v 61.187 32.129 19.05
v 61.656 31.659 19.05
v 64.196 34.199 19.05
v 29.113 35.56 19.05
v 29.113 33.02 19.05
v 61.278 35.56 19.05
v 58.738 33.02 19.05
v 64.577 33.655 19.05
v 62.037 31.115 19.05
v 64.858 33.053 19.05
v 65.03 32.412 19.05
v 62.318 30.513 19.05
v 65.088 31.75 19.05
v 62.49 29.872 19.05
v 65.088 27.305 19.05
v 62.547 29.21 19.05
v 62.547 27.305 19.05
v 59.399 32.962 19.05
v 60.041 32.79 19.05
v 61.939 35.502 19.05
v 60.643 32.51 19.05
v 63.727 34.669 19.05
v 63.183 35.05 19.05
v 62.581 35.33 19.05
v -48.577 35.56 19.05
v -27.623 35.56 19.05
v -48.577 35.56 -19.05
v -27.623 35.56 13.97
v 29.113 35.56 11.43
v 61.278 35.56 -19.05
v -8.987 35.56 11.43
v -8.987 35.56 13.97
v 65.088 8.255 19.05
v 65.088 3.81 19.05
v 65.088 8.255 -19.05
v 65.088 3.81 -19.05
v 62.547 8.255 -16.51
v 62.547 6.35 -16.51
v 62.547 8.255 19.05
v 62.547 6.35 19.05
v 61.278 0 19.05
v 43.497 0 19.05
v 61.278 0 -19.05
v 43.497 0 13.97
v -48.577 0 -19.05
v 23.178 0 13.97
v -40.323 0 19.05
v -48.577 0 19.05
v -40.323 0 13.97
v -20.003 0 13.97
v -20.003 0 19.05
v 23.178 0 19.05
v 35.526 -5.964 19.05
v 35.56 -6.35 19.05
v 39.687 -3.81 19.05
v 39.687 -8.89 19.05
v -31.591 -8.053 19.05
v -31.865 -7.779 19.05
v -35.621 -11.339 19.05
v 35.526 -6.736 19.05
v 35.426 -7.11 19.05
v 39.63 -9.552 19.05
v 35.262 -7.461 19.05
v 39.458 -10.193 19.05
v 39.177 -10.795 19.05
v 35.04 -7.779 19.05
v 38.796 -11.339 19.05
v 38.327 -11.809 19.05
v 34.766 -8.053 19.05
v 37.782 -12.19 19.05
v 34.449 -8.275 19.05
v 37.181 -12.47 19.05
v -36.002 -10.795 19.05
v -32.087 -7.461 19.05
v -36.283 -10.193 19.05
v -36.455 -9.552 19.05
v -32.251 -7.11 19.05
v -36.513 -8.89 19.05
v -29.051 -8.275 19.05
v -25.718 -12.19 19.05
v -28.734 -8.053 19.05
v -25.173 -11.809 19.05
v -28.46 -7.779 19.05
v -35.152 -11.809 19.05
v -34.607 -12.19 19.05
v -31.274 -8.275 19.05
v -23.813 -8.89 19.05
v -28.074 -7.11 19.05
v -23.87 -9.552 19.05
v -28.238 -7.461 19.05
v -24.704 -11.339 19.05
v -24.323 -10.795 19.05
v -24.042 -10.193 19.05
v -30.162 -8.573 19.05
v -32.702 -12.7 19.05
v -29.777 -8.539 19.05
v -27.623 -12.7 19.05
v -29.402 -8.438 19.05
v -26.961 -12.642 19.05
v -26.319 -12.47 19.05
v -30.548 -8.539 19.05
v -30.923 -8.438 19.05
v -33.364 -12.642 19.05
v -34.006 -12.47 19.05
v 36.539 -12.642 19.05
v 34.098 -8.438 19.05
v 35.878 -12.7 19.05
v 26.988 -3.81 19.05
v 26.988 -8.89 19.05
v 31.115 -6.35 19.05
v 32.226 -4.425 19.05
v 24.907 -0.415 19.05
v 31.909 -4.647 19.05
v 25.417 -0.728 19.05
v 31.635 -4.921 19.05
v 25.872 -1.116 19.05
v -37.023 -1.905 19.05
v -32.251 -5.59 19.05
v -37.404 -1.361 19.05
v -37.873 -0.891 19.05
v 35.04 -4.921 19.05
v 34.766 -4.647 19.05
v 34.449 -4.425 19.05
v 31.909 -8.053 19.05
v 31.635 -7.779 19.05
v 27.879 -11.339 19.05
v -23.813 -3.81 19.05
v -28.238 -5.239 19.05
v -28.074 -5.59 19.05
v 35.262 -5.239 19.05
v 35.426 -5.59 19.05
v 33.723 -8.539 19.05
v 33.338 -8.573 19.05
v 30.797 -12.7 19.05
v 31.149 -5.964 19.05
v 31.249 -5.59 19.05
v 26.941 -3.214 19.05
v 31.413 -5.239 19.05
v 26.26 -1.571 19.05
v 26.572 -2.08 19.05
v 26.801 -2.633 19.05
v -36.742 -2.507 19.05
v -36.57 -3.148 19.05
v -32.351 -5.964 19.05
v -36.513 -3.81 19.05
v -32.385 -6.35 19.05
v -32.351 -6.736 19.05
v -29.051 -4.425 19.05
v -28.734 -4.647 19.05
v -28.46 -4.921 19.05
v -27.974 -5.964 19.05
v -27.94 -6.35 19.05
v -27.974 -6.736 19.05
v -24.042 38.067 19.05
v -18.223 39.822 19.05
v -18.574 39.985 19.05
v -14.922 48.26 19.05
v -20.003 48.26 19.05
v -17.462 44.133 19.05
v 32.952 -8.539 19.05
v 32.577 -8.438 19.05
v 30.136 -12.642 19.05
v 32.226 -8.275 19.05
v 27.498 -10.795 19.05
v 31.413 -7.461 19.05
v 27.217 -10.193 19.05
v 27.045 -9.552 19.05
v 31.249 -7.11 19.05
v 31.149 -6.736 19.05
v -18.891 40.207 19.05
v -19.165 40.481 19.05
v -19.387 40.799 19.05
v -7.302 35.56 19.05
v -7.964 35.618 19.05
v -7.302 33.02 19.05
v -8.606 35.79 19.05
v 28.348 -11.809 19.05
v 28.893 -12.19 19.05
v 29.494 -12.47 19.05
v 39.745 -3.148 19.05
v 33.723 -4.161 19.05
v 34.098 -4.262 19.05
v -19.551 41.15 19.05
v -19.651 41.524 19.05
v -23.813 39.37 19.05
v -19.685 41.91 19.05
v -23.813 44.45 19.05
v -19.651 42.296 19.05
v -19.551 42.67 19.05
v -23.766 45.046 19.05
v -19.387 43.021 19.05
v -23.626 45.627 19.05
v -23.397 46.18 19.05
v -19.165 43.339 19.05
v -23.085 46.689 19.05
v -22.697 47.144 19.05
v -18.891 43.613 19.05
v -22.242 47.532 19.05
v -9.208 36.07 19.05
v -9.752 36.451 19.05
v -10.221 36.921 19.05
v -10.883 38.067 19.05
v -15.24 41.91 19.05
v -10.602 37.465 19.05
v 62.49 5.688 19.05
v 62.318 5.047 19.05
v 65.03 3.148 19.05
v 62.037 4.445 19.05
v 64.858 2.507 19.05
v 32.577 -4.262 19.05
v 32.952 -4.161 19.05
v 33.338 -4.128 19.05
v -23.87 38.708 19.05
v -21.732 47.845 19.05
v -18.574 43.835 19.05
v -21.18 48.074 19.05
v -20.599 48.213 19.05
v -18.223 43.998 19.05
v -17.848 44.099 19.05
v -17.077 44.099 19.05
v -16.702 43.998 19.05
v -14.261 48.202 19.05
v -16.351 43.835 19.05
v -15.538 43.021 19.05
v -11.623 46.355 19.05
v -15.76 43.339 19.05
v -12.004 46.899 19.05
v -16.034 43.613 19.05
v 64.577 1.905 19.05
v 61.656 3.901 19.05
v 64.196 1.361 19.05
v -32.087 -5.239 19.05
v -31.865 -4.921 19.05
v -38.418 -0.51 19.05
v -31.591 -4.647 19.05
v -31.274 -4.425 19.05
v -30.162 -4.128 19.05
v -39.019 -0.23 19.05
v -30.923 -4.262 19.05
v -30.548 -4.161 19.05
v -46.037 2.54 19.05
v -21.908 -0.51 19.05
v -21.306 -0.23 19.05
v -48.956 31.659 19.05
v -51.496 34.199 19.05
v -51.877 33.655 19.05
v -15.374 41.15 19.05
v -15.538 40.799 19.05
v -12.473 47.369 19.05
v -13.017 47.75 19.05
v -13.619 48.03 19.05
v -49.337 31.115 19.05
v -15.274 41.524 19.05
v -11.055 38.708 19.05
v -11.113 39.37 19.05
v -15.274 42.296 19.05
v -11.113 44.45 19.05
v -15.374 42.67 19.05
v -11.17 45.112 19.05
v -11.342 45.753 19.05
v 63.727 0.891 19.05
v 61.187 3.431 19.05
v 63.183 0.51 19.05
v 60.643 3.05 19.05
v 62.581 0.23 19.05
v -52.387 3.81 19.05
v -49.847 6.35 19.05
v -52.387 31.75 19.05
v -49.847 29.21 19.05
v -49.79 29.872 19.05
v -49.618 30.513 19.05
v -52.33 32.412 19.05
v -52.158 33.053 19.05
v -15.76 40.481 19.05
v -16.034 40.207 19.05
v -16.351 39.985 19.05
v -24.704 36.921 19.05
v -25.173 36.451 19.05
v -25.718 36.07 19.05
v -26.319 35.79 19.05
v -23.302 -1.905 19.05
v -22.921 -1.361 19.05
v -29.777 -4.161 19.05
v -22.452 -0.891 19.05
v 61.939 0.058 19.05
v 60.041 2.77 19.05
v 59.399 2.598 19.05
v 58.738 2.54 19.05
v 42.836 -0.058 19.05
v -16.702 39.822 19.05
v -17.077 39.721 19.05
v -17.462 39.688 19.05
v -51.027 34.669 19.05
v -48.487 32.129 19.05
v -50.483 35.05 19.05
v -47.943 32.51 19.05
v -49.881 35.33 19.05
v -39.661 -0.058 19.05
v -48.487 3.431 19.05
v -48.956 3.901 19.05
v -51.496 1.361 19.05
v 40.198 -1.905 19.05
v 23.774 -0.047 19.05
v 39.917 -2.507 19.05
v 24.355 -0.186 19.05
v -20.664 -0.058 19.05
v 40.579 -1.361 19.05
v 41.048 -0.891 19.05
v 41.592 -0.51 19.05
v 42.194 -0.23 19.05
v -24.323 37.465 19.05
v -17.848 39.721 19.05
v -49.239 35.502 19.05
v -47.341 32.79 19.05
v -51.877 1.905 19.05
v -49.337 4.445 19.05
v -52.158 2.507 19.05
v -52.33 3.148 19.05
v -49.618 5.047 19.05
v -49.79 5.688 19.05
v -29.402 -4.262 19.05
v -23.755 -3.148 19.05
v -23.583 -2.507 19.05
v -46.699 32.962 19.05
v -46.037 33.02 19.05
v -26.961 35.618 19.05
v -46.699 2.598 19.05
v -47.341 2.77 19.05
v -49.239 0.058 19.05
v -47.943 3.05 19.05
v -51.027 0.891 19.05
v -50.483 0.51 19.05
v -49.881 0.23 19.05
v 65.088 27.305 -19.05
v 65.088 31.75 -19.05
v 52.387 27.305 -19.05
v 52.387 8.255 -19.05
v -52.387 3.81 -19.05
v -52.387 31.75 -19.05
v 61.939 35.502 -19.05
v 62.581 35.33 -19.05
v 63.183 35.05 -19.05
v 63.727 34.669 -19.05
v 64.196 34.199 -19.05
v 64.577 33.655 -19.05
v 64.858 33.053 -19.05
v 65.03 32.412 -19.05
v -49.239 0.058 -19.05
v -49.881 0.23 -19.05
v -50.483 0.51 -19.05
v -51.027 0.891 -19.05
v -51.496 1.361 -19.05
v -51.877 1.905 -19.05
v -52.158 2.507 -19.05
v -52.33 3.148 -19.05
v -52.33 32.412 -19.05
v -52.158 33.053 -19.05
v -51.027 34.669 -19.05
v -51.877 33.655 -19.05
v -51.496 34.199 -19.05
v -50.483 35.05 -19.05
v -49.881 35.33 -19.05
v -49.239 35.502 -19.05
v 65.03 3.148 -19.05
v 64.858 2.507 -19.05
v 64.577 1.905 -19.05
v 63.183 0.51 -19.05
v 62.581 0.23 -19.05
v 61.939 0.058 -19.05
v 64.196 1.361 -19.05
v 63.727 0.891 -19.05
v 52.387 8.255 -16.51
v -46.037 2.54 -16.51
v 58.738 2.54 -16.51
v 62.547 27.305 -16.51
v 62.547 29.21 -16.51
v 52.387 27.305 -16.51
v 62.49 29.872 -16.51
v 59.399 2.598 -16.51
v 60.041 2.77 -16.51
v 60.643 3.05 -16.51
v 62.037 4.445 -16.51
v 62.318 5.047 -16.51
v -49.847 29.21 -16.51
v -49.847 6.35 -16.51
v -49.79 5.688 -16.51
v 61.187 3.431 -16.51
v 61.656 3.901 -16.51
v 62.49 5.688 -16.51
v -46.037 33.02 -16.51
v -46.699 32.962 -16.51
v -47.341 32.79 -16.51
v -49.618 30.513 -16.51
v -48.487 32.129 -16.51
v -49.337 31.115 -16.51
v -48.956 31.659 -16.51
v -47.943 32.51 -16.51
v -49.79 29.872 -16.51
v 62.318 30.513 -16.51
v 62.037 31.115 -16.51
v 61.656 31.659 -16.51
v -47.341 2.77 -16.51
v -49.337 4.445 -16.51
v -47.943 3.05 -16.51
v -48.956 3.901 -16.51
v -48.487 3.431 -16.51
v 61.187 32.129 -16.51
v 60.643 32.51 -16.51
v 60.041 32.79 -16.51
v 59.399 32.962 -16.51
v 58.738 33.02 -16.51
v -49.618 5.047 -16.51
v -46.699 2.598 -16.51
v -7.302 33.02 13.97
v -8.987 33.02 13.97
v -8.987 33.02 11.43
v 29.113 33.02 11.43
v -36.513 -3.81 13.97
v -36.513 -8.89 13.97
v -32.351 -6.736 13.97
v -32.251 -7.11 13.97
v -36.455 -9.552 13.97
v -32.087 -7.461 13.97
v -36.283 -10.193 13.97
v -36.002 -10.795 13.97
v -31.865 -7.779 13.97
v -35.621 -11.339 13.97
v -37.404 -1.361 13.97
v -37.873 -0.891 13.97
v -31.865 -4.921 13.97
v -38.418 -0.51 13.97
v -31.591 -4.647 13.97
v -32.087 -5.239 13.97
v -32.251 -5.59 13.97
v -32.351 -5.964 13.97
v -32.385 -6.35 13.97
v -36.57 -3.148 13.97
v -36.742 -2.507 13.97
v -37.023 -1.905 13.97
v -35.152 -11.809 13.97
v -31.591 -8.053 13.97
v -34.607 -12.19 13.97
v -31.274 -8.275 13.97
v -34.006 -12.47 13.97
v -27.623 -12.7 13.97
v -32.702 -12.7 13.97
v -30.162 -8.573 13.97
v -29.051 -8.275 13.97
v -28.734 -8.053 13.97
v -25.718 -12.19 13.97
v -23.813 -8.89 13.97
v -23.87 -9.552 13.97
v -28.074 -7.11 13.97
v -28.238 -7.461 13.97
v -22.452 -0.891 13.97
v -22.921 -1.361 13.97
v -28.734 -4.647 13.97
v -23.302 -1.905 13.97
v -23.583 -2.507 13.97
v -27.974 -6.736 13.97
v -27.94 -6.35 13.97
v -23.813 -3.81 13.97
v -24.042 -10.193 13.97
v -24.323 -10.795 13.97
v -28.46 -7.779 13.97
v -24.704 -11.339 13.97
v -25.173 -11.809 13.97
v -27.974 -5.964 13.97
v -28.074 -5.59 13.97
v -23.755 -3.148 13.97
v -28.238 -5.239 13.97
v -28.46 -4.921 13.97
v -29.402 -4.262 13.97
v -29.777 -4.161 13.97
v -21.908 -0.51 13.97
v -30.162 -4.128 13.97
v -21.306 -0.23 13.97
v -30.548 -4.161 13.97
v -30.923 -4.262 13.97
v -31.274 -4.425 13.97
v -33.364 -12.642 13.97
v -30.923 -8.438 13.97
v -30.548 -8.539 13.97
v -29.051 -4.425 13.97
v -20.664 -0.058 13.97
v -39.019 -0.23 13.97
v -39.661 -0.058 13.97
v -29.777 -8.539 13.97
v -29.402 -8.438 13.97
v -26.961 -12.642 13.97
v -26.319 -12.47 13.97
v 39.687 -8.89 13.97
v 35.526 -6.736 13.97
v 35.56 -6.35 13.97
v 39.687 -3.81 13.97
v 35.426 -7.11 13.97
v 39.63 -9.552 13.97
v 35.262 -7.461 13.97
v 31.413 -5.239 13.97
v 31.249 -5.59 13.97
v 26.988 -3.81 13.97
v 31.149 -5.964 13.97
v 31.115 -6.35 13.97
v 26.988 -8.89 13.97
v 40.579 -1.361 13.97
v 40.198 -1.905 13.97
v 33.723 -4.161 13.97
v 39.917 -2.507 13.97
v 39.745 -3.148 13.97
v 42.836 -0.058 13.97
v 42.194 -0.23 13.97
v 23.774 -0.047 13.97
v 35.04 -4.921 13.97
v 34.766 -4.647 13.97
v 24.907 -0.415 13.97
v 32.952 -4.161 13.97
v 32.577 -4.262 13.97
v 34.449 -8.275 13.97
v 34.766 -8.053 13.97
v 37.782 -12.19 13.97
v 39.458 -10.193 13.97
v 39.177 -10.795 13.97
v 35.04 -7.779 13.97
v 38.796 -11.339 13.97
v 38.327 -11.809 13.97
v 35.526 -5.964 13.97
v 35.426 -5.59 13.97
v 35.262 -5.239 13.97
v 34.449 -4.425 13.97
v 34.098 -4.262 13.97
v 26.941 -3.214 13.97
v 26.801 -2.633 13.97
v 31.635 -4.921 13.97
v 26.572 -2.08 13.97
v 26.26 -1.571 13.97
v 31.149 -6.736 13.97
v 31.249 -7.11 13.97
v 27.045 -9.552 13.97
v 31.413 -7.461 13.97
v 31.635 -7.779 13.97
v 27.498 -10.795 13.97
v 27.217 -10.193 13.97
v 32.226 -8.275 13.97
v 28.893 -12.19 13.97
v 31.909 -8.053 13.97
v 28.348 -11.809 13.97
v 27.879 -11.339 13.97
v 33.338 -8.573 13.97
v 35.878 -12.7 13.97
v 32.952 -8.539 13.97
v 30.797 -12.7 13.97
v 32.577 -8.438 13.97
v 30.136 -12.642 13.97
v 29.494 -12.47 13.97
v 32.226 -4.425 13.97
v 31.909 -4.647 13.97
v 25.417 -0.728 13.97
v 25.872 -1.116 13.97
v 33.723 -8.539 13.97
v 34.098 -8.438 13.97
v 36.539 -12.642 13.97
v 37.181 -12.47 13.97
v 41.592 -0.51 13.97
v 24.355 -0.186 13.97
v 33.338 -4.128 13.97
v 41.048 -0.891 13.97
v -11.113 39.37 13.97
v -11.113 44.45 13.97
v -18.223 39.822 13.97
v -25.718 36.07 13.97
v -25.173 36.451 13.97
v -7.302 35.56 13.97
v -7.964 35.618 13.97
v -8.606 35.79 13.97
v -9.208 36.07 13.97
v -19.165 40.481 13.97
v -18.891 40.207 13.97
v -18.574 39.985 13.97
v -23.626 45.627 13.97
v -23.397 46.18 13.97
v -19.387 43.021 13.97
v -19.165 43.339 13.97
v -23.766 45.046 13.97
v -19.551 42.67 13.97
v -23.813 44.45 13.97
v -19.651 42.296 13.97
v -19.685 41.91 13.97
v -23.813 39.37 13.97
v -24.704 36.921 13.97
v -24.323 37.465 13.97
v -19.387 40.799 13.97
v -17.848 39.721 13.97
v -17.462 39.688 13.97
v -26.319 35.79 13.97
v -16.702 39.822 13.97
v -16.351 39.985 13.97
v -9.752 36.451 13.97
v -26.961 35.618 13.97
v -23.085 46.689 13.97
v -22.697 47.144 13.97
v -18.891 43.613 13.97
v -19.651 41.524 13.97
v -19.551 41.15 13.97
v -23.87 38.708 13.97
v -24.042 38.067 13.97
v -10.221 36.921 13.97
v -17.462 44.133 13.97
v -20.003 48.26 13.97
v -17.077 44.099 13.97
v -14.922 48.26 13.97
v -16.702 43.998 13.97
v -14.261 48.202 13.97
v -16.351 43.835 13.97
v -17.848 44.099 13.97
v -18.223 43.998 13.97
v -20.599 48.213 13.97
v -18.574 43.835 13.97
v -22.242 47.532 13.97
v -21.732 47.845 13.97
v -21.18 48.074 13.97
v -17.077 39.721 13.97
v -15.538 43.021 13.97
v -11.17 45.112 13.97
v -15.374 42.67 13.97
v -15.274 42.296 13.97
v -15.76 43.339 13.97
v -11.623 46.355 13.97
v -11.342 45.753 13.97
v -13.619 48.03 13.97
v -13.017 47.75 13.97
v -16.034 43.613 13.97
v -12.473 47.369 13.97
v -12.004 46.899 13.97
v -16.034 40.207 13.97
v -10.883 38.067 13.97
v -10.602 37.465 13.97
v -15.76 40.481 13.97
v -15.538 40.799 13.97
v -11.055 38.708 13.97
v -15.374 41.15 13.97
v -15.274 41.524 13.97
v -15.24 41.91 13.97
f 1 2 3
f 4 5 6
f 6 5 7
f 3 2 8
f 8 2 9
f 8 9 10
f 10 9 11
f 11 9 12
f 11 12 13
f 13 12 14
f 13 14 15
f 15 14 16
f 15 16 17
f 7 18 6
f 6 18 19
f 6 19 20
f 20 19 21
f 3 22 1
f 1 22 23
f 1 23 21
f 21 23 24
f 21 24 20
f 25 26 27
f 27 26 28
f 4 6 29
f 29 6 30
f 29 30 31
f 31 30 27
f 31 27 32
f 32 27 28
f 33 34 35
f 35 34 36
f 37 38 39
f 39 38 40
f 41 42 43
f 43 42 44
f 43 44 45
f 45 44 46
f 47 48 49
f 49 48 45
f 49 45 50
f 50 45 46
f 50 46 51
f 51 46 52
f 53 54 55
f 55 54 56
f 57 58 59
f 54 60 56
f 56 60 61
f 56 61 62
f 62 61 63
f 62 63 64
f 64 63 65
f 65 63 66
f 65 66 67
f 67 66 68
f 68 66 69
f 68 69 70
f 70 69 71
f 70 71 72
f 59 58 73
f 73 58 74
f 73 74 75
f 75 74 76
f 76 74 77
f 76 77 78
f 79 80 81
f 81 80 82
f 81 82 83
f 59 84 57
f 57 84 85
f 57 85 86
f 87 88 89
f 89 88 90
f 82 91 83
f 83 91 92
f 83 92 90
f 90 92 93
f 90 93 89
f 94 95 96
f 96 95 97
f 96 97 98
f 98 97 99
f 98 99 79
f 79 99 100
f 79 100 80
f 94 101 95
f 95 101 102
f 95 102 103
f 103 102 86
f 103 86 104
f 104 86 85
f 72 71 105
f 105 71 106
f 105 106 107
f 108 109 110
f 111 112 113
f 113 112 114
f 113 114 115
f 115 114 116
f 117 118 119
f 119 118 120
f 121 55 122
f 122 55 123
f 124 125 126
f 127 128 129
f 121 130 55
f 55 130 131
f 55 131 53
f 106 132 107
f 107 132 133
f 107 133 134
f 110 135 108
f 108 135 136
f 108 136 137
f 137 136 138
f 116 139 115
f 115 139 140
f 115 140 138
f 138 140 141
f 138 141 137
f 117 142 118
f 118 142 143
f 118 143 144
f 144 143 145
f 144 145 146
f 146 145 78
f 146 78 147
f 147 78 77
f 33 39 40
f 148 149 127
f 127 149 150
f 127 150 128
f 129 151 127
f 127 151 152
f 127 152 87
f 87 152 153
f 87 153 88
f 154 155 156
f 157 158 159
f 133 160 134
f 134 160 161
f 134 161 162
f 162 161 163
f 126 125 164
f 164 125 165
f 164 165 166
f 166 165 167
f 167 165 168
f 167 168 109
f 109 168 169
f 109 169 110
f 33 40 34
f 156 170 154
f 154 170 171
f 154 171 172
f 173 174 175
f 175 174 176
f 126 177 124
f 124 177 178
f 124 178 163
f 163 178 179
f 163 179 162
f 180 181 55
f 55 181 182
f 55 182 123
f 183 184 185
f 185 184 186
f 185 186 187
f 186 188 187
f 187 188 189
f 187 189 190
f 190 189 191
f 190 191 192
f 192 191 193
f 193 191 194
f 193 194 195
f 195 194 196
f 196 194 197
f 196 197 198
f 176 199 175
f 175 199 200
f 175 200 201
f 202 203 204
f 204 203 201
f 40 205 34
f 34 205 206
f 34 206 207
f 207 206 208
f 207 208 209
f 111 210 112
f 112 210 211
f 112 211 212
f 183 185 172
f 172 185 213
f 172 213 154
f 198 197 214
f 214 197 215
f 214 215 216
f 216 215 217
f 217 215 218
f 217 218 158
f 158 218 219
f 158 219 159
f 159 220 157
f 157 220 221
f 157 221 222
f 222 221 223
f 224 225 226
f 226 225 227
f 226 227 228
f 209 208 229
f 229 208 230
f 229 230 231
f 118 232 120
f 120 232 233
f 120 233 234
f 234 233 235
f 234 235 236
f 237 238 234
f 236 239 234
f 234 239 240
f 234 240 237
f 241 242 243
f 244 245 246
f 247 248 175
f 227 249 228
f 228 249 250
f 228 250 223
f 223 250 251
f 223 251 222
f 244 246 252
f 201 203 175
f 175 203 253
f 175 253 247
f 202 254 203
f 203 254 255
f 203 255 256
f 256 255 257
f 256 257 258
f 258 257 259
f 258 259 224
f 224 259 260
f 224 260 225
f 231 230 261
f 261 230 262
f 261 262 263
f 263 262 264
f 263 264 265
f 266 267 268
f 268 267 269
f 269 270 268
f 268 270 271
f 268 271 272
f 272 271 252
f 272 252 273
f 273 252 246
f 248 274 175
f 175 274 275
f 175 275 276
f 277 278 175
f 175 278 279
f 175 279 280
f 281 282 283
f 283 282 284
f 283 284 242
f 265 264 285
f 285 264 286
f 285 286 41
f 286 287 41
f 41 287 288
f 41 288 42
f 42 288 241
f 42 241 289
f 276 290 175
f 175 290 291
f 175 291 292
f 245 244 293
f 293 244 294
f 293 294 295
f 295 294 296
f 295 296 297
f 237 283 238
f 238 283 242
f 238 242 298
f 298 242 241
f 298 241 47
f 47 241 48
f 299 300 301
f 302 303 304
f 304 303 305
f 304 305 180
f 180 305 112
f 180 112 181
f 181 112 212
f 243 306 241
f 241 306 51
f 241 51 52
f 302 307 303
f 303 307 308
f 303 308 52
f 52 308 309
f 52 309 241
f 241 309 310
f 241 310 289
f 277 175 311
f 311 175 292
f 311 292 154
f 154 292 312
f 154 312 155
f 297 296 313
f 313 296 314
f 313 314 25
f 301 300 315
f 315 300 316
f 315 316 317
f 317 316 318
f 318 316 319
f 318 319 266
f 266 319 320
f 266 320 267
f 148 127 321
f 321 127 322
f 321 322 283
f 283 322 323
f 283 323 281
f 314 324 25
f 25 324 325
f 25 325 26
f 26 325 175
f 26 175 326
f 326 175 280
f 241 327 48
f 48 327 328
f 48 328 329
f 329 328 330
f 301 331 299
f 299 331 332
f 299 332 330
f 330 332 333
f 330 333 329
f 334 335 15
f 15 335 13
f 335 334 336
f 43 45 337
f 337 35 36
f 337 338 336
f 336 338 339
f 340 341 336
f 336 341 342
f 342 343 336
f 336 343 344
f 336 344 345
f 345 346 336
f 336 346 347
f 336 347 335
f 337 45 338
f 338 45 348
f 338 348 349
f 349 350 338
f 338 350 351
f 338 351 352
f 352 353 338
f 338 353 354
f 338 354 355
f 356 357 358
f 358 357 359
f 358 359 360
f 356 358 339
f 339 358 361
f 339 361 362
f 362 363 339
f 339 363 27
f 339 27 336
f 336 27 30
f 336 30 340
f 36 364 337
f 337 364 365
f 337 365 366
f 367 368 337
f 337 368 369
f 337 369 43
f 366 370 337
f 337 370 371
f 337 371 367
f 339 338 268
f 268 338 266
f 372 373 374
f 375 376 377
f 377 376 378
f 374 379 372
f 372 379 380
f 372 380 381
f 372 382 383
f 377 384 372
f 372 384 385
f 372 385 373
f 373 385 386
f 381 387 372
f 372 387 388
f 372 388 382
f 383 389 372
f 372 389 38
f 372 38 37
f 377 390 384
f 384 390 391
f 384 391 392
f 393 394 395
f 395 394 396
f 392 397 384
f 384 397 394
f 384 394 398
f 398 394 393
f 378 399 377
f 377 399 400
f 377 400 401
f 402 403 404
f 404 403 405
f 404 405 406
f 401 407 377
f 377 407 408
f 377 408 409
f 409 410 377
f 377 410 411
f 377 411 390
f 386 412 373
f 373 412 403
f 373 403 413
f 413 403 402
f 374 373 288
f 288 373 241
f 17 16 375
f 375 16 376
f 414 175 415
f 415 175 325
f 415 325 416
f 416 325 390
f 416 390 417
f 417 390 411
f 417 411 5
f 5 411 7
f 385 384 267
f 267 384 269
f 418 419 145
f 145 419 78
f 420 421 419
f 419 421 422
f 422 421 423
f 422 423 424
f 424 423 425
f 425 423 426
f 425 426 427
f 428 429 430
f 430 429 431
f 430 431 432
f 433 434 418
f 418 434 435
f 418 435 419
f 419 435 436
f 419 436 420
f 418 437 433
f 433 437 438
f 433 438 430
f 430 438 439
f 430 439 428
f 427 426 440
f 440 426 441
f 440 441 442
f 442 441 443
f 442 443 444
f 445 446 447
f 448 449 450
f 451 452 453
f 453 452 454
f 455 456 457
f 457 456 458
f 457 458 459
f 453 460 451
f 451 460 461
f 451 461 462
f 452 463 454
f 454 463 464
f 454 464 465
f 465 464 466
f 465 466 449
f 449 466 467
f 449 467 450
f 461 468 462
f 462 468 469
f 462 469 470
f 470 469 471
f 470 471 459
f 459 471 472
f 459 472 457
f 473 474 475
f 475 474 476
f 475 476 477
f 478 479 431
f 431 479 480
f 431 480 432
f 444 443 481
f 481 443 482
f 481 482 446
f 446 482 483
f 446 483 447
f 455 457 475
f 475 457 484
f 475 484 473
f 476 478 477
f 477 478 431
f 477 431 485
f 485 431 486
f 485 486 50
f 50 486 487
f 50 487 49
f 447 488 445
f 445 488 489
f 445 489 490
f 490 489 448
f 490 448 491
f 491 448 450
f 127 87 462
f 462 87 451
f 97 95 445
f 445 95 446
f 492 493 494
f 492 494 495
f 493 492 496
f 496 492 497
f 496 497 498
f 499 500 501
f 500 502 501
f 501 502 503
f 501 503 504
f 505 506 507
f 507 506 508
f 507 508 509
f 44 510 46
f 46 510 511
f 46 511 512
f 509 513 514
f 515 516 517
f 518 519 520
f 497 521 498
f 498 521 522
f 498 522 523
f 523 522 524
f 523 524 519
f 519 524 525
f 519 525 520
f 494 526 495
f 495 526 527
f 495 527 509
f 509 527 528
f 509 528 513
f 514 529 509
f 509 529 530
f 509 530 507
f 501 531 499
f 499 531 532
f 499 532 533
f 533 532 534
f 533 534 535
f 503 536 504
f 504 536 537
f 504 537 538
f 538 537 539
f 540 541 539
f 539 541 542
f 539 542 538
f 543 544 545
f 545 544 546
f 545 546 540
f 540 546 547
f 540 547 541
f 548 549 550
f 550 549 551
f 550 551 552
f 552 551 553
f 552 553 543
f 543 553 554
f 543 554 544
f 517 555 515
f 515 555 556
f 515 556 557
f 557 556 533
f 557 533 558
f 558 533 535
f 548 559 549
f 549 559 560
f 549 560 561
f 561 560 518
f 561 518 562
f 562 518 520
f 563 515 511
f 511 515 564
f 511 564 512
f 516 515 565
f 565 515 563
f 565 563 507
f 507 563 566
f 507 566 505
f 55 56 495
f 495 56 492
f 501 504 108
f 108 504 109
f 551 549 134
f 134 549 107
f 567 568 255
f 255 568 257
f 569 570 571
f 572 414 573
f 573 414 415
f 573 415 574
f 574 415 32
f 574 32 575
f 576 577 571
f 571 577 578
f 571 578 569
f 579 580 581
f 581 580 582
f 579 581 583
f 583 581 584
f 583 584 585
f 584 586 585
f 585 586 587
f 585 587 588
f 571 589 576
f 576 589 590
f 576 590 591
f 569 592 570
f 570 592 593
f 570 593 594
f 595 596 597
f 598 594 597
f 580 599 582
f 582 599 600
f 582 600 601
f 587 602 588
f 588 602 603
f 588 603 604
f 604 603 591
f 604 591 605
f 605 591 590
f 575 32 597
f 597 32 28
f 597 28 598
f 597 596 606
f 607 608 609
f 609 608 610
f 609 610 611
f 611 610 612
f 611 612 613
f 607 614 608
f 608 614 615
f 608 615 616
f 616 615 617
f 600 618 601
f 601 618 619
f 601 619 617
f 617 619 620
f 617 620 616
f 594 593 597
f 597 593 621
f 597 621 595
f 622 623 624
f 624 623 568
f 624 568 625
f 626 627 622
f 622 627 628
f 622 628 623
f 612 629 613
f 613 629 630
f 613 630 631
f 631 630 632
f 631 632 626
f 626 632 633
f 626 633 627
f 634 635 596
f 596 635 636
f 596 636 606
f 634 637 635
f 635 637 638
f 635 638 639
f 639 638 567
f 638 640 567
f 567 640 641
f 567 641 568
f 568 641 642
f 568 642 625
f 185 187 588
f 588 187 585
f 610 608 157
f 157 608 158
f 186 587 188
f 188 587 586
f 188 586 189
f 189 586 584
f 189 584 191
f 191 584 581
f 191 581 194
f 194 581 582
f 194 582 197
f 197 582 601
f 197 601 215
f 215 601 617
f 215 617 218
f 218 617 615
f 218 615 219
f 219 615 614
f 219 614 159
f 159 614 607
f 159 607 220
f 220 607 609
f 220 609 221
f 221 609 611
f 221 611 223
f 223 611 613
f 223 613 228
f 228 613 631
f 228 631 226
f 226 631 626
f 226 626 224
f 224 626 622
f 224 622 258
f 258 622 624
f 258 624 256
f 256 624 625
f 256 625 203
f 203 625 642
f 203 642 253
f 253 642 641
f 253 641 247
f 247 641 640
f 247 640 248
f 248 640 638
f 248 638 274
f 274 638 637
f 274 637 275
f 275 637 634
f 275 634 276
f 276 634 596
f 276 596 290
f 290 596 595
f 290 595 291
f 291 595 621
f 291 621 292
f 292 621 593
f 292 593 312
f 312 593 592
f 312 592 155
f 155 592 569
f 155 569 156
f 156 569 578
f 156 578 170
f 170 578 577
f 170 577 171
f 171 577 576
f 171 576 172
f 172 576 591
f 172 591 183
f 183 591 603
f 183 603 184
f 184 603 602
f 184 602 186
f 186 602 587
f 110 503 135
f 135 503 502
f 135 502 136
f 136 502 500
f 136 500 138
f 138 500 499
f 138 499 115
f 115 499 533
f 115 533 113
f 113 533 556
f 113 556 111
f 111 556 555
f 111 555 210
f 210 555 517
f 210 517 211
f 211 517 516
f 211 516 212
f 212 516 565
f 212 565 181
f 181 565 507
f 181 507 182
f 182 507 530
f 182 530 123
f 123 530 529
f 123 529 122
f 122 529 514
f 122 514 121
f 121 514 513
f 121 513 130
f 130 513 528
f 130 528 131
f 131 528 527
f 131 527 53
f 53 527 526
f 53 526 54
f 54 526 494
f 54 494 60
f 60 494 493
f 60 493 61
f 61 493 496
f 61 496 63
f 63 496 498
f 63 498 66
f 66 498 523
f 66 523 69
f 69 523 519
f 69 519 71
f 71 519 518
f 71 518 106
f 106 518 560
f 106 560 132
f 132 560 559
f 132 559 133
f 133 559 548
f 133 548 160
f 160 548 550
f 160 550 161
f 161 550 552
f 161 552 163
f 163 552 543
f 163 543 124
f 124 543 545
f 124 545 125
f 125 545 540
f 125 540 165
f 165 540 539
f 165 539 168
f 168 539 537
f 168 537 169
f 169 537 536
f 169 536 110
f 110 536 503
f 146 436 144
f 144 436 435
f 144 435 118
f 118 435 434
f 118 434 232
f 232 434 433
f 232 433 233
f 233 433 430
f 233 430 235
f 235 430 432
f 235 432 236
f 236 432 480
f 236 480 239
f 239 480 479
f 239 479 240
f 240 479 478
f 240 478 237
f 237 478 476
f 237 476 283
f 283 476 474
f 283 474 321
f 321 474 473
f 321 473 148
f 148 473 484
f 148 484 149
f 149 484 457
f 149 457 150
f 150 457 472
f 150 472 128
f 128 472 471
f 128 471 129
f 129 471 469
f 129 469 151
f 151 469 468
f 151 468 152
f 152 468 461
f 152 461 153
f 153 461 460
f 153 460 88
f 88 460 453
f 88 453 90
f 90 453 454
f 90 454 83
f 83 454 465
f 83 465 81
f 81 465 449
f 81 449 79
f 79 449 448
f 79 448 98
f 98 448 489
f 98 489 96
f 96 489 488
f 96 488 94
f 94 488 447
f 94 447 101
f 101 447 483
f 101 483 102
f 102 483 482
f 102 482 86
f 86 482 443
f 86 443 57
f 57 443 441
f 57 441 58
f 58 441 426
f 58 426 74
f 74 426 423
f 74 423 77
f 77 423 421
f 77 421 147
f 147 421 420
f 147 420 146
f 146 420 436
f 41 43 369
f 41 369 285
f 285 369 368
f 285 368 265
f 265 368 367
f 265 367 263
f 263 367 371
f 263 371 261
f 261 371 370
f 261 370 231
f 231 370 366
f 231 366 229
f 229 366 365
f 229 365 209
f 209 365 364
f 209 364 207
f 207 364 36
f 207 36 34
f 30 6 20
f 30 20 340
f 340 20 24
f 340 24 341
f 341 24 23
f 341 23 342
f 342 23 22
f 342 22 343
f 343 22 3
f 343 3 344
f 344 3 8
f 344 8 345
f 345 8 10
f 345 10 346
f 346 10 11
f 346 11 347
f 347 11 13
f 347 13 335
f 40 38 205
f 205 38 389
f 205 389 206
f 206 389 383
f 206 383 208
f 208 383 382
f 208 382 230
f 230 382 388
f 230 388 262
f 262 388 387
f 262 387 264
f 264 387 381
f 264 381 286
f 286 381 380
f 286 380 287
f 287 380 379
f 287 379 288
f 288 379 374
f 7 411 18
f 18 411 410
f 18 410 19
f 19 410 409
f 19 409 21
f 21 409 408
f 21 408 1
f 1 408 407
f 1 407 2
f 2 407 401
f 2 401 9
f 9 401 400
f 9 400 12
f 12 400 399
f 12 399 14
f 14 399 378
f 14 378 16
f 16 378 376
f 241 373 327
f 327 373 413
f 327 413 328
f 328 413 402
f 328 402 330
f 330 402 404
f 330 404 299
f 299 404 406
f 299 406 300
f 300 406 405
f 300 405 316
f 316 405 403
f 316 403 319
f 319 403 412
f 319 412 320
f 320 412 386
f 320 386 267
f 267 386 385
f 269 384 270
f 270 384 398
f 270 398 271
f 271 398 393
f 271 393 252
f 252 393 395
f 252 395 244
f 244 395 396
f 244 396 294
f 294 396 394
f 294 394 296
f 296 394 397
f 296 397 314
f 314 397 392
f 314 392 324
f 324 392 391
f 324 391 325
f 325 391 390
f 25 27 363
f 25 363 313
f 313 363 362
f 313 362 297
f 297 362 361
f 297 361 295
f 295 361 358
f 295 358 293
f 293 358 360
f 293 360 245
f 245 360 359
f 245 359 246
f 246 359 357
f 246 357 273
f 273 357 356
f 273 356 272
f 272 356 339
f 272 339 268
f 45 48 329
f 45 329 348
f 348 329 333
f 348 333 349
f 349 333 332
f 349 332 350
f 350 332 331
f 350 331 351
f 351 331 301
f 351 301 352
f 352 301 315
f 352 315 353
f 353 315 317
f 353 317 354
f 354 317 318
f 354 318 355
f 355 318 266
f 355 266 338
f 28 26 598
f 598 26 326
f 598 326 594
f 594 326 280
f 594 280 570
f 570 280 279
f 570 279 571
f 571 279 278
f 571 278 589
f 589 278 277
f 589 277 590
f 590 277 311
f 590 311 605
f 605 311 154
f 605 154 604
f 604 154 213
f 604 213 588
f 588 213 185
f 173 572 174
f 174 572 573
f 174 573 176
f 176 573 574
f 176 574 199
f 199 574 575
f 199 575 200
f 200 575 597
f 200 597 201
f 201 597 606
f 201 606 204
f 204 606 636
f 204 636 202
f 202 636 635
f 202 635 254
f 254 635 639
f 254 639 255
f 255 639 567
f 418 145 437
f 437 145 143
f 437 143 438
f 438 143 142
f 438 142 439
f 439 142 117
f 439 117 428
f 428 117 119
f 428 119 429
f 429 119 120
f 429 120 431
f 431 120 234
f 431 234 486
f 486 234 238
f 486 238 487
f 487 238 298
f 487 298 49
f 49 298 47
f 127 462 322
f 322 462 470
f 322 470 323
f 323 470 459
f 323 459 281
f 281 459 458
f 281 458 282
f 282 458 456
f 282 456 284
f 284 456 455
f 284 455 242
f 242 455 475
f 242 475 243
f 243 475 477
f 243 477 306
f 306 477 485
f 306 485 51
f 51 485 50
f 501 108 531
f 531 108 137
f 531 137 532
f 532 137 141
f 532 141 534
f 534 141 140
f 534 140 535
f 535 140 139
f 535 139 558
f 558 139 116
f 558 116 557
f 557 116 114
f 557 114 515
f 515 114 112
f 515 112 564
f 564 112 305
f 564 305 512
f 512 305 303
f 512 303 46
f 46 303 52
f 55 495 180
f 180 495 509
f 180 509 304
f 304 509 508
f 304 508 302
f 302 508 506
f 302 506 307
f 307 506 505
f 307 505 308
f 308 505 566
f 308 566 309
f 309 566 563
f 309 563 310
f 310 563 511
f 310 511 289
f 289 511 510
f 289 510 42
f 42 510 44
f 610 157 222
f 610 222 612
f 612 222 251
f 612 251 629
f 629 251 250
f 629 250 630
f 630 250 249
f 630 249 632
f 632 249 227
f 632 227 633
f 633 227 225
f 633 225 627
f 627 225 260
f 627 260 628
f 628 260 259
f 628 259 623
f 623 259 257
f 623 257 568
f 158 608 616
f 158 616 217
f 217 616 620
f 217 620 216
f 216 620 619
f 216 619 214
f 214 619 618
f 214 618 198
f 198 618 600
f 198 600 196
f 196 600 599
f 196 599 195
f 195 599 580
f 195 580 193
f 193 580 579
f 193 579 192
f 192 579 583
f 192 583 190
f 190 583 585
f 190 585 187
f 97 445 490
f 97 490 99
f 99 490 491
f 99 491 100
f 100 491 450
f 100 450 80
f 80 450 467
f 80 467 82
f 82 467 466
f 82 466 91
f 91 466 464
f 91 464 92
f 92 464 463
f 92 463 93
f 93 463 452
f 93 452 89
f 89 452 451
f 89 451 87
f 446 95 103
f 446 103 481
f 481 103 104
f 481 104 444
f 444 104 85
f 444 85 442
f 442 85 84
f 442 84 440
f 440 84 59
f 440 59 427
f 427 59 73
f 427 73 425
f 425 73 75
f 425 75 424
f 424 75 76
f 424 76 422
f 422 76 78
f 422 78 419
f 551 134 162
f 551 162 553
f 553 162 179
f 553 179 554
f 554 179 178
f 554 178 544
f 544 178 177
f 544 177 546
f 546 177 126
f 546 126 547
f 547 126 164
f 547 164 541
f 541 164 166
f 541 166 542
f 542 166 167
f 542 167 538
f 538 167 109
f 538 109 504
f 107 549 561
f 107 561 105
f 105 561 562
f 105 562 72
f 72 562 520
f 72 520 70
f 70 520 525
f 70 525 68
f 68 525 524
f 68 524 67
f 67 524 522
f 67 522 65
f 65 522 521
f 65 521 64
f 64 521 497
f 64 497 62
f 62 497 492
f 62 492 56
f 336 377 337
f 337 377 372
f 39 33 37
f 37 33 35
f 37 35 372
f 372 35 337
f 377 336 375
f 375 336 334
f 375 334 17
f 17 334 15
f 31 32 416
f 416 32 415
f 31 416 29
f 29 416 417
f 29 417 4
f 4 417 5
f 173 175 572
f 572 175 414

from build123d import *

# Parameters (mm, degrees)
SKETCH1_W           = 12.7
SKETCH1_H           = 38.1
SKETCH1_W_2         = 104.775
BOSS_EXTRUDE1_DEPTH = 35.56
SKETCH11_W          = 112.395
SKETCH11_H          = 30.48
CUT_EXTRUDE9_DEPTH  = 35.56
SKETCH5_W           = 12.7
SKETCH5_H           = 5.08
BOSS_EXTRUDE2_DEPTH = 12.7
SKETCH7_W           = 12.7
SKETCH7_H           = 5.08
BOSS_EXTRUDE3_DEPTH = 12.7
SKETCH8_R           = 2.2225
CUT_EXTRUDE6_DEPTH  = 88.497032271
FILLET1_R           = 3.81
SKETCH9_W           = 12.7
SKETCH9_H           = 19.05
CUT_EXTRUDE7_DEPTH  = 90.537814672
SKETCH10_W          = 25.4
SKETCH10_H          = 7.62
CUT_EXTRUDE8_DEPTH  = 8.89


with BuildPart() as part:
    # Sketch1 → Boss-Extrude1 (new body)
    with BuildSketch(Plane(origin=(0, 0, 0), x_dir=(1, 0, 0), z_dir=(0, 1, 0))):
        with Locations((58.7375, 0)):
            Rectangle(SKETCH1_W, SKETCH1_H)
        Rectangle(SKETCH1_W_2, SKETCH1_H)
    extrude(amount=BOSS_EXTRUDE1_DEPTH)

    # Sketch11 → Cut-Extrude9 (cut)
    with BuildSketch(Plane.XY.offset(19.05)):
        with Locations((6.35, 17.78)):
            Rectangle(SKETCH11_W, SKETCH11_H)
    extrude(amount=-CUT_EXTRUDE9_DEPTH, mode=Mode.SUBTRACT)

    # Sketch5 → Boss-Extrude2 (add)
    with BuildSketch(Plane.XZ):
        with Locations((-30.1625, 16.51)):
            Rectangle(SKETCH5_W, SKETCH5_H)
        with Locations((33.3375, 16.51)):
            Rectangle(SKETCH5_W, SKETCH5_H)
    extrude(amount=BOSS_EXTRUDE2_DEPTH)

    # Sketch7 → Boss-Extrude3 (add)
    with BuildSketch(Plane(origin=(0, 35.56, 0), x_dir=(1, 0, 0), z_dir=(0, 1, 0))):
        with Locations((-17.4625, -16.51)):
            Rectangle(SKETCH7_W, SKETCH7_H)
    extrude(amount=BOSS_EXTRUDE3_DEPTH)

    # Sketch8 → Cut-Extrude6 (cut, through all)
    with BuildSketch(Plane(origin=(0, 0, 13.97), x_dir=(-1, 0, 0), z_dir=(0, 0, -1))):
        with Locations((-33.3375, -6.35)):
            Circle(SKETCH8_R)
        with Locations((30.1625, -6.35)):
            Circle(SKETCH8_R)
        with Locations((17.4625, 41.91)):
            Circle(SKETCH8_R)
    extrude(amount=-CUT_EXTRUDE6_DEPTH, mode=Mode.SUBTRACT)

    # Fillet1
    fillet1_edges = [part.edges().sort_by_distance(p)[0] for p in [
        (65.0875, 35.56, 0),
        (62.5475, 2.54, 1.27),
        (62.5475, 33.02, 1.27),
        (-49.8475, 33.02, 1.27),
        (-49.8475, 2.54, 1.27),
        (-52.3875, 35.56, 0),
        (-36.5125, 0, 16.51),
        (-23.8125, -12.7, 16.51),
        (-36.5125, -12.7, 16.51),
        (-23.8125, 0, 16.51),
        (39.6875, 0, 16.51),
        (26.9875, 0, 16.51),
        (39.6875, -12.7, 16.51),
        (26.9875, -12.7, 16.51),
        (-11.1125, 35.56, 16.51),
        (-23.8125, 35.56, 16.51),
        (-52.3875, 0, 0),
        (-11.1125, 48.26, 16.51),
        (-23.8125, 48.26, 16.51),
        (65.0875, 0, 0),
    ]]
    fillet(fillet1_edges, radius=FILLET1_R)

    # Sketch9 → Cut-Extrude7 (cut, through all)
    with BuildSketch(Plane(origin=(0, 0, -19.05), x_dir=(-1, 0, 0), z_dir=(0, 0, -1))):
        with Locations((-58.7375, 17.78)):
            Rectangle(SKETCH9_W, SKETCH9_H)
    extrude(amount=-CUT_EXTRUDE7_DEPTH, mode=Mode.SUBTRACT)

    # Sketch10 → Cut-Extrude8 (cut)
    with BuildSketch(Plane(origin=(0, 35.56, 0), x_dir=(1, 0, 0), z_dir=(0, 1, 0))):
        Polygon((-7.3025, -19.05), (3.712545586, -19.05), (3.712545586, -11.43), (-8.987454414, -11.43), (-8.987454414, -13.97), (-7.3025, -13.97), align=None)
        with Locations((16.412545586, -15.24)):
            Rectangle(SKETCH10_W, SKETCH10_H)
    extrude(amount=-CUT_EXTRUDE8_DEPTH, mode=Mode.SUBTRACT)


solid = part.part
